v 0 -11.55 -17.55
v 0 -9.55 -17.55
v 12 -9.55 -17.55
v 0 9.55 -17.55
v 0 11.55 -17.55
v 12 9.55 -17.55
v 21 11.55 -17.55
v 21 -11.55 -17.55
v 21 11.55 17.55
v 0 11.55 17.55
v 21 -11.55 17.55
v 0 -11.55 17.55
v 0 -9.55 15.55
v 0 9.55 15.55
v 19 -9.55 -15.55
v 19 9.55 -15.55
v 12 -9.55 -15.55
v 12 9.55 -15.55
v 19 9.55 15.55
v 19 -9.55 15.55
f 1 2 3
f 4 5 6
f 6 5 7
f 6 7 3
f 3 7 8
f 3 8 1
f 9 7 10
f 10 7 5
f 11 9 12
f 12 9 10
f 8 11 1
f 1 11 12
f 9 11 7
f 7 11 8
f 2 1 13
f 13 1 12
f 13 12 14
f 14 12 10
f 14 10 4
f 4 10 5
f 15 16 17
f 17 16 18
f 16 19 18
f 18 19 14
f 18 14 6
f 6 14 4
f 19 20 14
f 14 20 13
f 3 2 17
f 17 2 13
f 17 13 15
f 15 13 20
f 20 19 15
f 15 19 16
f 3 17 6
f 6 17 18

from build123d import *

# Parameters (mm, degrees)
SKETCH4_W           = 31.1
SKETCH4_H           = 19.1
BOSS_EXTRUDE1_DEPTH = 19
SHELL1_T            = 2
SKETCH5_W           = 12
SKETCH5_H           = 19.1
CUT_EXTRUDE1_DEPTH  = 2


with BuildPart() as part:
    # Sketch4 → Boss-Extrude1 (new body)
    with BuildSketch(Plane(origin=(0, 0, 0), x_dir=(0, 0, -1), z_dir=(1, 0, 0))):
        Rectangle(SKETCH4_W, SKETCH4_H)
    extrude(amount=BOSS_EXTRUDE1_DEPTH)

    # Shell1
    shell1_openings = [part.faces().sort_by_distance(p)[0] for p in [
        (0, 0, 0),
    ]]
    offset(amount=SHELL1_T, openings=shell1_openings, kind=Kind.INTERSECTION)

    # Sketch5 → Cut-Extrude1 (cut)
    with BuildSketch(Plane(origin=(0, 0, -17.55), x_dir=(-1, 0, 0), z_dir=(0, 0, -1))):
        with Locations((-6, 0)):
            Rectangle(SKETCH5_W, SKETCH5_H)
    extrude(amount=-CUT_EXTRUDE1_DEPTH, mode=Mode.SUBTRACT)


solid = part.part
